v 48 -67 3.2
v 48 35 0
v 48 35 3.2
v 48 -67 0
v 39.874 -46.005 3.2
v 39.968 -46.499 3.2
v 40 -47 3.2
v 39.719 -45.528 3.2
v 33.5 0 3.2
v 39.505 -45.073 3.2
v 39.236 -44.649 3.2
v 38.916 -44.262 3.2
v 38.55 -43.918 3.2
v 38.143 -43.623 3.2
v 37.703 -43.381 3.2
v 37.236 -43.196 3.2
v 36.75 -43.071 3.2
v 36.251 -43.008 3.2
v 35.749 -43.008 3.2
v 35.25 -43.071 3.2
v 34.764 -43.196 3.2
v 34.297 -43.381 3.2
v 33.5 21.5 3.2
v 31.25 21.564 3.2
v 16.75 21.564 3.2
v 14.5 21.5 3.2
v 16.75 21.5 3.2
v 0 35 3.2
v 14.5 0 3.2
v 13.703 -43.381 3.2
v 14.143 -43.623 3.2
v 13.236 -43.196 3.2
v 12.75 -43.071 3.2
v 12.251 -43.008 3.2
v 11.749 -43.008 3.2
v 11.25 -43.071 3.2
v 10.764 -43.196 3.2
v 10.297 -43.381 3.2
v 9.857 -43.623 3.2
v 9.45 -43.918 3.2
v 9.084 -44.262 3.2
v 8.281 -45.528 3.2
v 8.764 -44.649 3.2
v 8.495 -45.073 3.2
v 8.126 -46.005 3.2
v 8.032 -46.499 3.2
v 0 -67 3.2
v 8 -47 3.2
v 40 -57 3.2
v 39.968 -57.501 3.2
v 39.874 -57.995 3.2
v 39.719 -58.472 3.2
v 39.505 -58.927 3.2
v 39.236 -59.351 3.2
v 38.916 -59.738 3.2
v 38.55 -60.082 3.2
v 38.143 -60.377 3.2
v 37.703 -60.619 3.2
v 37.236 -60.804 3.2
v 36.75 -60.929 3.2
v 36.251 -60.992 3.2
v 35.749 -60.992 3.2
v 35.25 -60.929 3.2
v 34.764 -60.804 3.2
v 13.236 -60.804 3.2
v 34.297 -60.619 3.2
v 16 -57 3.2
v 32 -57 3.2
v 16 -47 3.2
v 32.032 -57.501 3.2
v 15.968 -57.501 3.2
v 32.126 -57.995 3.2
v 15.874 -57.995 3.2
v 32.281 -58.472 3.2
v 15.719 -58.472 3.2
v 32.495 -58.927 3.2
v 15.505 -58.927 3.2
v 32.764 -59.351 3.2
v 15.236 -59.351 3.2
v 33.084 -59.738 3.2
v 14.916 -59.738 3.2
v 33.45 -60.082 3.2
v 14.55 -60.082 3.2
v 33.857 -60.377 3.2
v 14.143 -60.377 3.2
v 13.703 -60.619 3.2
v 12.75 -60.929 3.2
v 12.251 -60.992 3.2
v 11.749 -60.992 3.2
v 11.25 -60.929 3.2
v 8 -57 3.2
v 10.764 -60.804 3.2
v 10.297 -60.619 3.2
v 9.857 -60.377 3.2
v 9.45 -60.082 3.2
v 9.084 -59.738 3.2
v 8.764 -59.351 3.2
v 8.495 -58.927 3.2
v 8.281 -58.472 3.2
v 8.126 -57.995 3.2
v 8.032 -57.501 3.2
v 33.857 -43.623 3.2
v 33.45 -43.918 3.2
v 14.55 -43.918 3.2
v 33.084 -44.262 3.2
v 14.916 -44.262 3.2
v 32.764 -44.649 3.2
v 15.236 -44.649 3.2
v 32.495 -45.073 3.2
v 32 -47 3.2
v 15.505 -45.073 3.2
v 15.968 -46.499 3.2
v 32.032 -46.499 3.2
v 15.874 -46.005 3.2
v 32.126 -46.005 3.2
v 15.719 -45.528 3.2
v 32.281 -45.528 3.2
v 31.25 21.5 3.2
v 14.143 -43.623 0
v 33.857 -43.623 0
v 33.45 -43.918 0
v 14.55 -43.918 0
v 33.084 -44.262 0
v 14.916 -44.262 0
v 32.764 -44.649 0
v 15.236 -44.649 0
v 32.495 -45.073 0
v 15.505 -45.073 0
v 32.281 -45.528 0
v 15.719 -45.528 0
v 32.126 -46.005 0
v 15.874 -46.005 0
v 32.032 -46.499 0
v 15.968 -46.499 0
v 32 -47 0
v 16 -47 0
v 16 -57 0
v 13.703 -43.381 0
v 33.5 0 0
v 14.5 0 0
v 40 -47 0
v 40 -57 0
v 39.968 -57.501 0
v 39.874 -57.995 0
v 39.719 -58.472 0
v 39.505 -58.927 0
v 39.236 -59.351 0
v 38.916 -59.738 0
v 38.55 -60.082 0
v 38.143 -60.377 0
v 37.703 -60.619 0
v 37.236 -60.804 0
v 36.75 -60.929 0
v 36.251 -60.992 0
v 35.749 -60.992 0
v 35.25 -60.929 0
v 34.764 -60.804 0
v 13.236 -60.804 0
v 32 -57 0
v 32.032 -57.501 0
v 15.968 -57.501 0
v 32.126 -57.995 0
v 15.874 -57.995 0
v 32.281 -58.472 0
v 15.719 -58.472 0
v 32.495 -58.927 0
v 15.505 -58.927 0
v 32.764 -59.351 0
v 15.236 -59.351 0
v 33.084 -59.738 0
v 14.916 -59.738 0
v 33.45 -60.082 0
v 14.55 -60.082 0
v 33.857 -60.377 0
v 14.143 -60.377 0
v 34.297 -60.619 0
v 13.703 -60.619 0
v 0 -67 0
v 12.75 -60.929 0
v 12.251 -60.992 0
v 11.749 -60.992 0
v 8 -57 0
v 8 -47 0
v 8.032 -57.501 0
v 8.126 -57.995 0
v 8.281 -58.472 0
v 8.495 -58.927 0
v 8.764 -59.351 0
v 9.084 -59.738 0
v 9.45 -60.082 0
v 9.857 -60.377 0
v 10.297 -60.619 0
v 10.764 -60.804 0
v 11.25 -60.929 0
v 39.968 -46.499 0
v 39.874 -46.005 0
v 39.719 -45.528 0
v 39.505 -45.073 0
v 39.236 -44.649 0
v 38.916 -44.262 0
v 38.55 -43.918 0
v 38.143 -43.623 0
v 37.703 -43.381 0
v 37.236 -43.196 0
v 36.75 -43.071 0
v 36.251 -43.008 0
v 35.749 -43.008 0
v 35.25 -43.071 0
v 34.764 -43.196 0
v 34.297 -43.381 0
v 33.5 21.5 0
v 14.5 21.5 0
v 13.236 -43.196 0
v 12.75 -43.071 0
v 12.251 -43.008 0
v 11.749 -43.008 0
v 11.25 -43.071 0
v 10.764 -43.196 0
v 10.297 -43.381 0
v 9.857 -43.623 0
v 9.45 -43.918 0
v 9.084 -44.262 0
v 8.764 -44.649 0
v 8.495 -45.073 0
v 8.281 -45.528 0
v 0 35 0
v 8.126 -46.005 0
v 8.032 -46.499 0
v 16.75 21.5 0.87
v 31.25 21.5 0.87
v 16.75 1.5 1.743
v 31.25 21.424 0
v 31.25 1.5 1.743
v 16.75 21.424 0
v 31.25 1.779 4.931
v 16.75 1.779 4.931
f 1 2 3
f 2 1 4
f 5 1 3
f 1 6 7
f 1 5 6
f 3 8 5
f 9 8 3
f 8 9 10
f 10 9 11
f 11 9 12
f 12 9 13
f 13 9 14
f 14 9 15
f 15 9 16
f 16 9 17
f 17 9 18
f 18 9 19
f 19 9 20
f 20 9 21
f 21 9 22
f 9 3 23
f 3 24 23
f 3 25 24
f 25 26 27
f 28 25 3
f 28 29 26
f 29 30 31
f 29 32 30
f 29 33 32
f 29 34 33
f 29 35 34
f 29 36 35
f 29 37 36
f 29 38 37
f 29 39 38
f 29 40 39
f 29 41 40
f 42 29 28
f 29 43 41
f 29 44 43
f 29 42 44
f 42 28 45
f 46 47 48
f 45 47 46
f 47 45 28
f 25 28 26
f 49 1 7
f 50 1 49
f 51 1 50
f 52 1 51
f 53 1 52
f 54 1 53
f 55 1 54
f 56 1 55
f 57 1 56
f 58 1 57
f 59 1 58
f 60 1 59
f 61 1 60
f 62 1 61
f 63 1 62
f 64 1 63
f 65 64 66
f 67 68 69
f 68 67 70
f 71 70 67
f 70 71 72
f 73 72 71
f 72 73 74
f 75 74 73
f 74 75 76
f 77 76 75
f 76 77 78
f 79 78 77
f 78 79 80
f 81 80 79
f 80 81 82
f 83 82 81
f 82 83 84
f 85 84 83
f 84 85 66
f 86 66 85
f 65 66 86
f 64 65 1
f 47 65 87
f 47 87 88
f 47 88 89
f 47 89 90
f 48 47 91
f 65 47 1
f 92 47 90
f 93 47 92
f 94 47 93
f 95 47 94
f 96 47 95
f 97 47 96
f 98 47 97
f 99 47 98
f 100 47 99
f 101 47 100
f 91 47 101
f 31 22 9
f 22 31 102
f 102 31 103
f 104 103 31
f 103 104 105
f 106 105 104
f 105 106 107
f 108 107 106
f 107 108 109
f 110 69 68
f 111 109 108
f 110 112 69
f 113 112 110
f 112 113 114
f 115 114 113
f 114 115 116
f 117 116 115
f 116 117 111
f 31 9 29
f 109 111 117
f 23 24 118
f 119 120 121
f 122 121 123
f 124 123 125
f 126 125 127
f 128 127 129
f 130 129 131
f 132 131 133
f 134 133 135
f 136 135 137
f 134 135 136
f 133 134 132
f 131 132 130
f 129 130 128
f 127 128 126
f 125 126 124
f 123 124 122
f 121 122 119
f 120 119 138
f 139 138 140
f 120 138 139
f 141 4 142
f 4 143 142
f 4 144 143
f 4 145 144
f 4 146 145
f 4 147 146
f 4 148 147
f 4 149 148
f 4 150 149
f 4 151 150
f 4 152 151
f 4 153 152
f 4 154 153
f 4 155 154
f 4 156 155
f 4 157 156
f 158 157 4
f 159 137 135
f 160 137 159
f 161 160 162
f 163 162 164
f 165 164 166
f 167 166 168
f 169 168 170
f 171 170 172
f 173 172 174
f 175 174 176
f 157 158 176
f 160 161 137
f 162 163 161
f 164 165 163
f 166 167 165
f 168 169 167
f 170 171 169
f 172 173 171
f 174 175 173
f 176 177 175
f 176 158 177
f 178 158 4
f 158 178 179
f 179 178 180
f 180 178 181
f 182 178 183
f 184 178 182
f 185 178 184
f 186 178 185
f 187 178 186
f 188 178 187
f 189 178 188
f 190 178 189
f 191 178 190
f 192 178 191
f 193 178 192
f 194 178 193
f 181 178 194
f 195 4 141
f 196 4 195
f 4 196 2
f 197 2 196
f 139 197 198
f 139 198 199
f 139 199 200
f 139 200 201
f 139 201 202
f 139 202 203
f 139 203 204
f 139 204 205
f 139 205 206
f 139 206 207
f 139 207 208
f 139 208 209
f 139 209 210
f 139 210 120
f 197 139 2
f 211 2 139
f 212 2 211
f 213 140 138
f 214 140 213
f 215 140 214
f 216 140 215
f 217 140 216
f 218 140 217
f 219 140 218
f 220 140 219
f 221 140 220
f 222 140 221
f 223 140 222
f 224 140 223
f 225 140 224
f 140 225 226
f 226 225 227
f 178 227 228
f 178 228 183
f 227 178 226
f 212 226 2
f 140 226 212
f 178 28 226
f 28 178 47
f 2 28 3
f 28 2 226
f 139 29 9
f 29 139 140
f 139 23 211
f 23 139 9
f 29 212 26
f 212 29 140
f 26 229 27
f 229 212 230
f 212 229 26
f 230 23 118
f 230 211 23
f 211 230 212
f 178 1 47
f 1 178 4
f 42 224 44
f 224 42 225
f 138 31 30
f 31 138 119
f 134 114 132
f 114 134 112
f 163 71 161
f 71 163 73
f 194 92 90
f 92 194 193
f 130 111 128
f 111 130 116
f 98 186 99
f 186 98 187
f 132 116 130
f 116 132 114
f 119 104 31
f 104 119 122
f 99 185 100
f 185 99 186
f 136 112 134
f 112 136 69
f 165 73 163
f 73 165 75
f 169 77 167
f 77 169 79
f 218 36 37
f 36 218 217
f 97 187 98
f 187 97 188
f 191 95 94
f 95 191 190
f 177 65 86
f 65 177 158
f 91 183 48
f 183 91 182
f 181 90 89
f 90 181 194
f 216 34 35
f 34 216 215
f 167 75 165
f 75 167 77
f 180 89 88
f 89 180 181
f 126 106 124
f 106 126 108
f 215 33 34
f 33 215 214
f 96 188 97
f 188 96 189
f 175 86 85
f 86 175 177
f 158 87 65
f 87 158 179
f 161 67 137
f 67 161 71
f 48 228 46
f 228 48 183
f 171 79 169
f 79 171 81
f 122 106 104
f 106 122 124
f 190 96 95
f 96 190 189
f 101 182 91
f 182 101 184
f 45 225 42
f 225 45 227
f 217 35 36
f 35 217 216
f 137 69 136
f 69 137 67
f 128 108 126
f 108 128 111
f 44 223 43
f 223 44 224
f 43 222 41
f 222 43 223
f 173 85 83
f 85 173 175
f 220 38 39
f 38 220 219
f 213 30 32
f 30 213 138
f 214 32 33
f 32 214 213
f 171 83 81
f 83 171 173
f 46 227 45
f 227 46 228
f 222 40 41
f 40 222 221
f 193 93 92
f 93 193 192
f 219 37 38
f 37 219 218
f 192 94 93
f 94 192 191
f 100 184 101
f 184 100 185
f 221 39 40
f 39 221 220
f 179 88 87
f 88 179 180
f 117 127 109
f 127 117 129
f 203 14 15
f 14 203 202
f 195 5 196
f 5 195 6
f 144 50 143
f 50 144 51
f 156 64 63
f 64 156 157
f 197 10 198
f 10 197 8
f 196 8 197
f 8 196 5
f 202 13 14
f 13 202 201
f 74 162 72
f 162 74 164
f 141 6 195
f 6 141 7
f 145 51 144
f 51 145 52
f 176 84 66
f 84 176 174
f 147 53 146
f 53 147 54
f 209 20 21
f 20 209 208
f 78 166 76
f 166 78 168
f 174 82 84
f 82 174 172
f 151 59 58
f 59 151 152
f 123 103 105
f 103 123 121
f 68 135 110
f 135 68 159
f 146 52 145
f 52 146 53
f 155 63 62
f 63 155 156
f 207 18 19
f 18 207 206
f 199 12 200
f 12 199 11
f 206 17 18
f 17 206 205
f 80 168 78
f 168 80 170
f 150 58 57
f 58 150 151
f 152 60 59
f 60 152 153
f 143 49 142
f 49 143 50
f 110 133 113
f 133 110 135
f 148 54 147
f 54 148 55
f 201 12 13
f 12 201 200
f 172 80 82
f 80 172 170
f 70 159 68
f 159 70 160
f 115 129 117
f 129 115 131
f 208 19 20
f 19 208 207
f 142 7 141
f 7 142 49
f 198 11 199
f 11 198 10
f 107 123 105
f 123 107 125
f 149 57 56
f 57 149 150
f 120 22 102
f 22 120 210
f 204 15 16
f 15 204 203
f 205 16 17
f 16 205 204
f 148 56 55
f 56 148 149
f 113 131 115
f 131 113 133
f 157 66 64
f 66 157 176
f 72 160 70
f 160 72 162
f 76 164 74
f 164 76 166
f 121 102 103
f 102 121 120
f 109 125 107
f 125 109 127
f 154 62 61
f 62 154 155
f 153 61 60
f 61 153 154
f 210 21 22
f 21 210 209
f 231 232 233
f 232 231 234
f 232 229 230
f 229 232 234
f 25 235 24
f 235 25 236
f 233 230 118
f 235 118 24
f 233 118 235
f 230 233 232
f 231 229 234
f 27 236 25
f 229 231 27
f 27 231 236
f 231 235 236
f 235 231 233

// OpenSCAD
$fn=50;

height = 3.2;
width = 48.0;
length = 35.0;
corner = 1.0;
power_strip_length = 380;
shelf_width = 500;
length_inner = 7;
outer_distance = (shelf_width - power_strip_length) / 2;
diameter = 8.0;

module hole() {
    translate([0,0,-1])
         hull() {
         translate([0,10,0])
              cylinder(h=height+2, d=diameter);
         cylinder(h=height+2, d=diameter);
    }
}

// base plate
difference() {
    cube([width, length, height]);
    translate([(width/2)-(19/2), 0, 0])
         cube([19, 21.5, height+1]);
}

// clip
translate([(width/2)-(14.5/2), 1.5, sin(5)*20])
    rotate(a=-5, v=[1,0,0])
        cube([14.5, 20, height]);

// inner spacer
translate([0, -length_inner, 0])
    cube([width, length_inner, height]);

// outer bracket
difference() {
translate([0, -length_inner-outer_distance, 0])
    cube([width, outer_distance, height]);

translate([width/3*1-diameter/2, -length_inner-outer_distance+10, 0])
    hole();

translate([width/3*2+diameter/2, -length_inner-outer_distance+10, 0])
    hole();
}
